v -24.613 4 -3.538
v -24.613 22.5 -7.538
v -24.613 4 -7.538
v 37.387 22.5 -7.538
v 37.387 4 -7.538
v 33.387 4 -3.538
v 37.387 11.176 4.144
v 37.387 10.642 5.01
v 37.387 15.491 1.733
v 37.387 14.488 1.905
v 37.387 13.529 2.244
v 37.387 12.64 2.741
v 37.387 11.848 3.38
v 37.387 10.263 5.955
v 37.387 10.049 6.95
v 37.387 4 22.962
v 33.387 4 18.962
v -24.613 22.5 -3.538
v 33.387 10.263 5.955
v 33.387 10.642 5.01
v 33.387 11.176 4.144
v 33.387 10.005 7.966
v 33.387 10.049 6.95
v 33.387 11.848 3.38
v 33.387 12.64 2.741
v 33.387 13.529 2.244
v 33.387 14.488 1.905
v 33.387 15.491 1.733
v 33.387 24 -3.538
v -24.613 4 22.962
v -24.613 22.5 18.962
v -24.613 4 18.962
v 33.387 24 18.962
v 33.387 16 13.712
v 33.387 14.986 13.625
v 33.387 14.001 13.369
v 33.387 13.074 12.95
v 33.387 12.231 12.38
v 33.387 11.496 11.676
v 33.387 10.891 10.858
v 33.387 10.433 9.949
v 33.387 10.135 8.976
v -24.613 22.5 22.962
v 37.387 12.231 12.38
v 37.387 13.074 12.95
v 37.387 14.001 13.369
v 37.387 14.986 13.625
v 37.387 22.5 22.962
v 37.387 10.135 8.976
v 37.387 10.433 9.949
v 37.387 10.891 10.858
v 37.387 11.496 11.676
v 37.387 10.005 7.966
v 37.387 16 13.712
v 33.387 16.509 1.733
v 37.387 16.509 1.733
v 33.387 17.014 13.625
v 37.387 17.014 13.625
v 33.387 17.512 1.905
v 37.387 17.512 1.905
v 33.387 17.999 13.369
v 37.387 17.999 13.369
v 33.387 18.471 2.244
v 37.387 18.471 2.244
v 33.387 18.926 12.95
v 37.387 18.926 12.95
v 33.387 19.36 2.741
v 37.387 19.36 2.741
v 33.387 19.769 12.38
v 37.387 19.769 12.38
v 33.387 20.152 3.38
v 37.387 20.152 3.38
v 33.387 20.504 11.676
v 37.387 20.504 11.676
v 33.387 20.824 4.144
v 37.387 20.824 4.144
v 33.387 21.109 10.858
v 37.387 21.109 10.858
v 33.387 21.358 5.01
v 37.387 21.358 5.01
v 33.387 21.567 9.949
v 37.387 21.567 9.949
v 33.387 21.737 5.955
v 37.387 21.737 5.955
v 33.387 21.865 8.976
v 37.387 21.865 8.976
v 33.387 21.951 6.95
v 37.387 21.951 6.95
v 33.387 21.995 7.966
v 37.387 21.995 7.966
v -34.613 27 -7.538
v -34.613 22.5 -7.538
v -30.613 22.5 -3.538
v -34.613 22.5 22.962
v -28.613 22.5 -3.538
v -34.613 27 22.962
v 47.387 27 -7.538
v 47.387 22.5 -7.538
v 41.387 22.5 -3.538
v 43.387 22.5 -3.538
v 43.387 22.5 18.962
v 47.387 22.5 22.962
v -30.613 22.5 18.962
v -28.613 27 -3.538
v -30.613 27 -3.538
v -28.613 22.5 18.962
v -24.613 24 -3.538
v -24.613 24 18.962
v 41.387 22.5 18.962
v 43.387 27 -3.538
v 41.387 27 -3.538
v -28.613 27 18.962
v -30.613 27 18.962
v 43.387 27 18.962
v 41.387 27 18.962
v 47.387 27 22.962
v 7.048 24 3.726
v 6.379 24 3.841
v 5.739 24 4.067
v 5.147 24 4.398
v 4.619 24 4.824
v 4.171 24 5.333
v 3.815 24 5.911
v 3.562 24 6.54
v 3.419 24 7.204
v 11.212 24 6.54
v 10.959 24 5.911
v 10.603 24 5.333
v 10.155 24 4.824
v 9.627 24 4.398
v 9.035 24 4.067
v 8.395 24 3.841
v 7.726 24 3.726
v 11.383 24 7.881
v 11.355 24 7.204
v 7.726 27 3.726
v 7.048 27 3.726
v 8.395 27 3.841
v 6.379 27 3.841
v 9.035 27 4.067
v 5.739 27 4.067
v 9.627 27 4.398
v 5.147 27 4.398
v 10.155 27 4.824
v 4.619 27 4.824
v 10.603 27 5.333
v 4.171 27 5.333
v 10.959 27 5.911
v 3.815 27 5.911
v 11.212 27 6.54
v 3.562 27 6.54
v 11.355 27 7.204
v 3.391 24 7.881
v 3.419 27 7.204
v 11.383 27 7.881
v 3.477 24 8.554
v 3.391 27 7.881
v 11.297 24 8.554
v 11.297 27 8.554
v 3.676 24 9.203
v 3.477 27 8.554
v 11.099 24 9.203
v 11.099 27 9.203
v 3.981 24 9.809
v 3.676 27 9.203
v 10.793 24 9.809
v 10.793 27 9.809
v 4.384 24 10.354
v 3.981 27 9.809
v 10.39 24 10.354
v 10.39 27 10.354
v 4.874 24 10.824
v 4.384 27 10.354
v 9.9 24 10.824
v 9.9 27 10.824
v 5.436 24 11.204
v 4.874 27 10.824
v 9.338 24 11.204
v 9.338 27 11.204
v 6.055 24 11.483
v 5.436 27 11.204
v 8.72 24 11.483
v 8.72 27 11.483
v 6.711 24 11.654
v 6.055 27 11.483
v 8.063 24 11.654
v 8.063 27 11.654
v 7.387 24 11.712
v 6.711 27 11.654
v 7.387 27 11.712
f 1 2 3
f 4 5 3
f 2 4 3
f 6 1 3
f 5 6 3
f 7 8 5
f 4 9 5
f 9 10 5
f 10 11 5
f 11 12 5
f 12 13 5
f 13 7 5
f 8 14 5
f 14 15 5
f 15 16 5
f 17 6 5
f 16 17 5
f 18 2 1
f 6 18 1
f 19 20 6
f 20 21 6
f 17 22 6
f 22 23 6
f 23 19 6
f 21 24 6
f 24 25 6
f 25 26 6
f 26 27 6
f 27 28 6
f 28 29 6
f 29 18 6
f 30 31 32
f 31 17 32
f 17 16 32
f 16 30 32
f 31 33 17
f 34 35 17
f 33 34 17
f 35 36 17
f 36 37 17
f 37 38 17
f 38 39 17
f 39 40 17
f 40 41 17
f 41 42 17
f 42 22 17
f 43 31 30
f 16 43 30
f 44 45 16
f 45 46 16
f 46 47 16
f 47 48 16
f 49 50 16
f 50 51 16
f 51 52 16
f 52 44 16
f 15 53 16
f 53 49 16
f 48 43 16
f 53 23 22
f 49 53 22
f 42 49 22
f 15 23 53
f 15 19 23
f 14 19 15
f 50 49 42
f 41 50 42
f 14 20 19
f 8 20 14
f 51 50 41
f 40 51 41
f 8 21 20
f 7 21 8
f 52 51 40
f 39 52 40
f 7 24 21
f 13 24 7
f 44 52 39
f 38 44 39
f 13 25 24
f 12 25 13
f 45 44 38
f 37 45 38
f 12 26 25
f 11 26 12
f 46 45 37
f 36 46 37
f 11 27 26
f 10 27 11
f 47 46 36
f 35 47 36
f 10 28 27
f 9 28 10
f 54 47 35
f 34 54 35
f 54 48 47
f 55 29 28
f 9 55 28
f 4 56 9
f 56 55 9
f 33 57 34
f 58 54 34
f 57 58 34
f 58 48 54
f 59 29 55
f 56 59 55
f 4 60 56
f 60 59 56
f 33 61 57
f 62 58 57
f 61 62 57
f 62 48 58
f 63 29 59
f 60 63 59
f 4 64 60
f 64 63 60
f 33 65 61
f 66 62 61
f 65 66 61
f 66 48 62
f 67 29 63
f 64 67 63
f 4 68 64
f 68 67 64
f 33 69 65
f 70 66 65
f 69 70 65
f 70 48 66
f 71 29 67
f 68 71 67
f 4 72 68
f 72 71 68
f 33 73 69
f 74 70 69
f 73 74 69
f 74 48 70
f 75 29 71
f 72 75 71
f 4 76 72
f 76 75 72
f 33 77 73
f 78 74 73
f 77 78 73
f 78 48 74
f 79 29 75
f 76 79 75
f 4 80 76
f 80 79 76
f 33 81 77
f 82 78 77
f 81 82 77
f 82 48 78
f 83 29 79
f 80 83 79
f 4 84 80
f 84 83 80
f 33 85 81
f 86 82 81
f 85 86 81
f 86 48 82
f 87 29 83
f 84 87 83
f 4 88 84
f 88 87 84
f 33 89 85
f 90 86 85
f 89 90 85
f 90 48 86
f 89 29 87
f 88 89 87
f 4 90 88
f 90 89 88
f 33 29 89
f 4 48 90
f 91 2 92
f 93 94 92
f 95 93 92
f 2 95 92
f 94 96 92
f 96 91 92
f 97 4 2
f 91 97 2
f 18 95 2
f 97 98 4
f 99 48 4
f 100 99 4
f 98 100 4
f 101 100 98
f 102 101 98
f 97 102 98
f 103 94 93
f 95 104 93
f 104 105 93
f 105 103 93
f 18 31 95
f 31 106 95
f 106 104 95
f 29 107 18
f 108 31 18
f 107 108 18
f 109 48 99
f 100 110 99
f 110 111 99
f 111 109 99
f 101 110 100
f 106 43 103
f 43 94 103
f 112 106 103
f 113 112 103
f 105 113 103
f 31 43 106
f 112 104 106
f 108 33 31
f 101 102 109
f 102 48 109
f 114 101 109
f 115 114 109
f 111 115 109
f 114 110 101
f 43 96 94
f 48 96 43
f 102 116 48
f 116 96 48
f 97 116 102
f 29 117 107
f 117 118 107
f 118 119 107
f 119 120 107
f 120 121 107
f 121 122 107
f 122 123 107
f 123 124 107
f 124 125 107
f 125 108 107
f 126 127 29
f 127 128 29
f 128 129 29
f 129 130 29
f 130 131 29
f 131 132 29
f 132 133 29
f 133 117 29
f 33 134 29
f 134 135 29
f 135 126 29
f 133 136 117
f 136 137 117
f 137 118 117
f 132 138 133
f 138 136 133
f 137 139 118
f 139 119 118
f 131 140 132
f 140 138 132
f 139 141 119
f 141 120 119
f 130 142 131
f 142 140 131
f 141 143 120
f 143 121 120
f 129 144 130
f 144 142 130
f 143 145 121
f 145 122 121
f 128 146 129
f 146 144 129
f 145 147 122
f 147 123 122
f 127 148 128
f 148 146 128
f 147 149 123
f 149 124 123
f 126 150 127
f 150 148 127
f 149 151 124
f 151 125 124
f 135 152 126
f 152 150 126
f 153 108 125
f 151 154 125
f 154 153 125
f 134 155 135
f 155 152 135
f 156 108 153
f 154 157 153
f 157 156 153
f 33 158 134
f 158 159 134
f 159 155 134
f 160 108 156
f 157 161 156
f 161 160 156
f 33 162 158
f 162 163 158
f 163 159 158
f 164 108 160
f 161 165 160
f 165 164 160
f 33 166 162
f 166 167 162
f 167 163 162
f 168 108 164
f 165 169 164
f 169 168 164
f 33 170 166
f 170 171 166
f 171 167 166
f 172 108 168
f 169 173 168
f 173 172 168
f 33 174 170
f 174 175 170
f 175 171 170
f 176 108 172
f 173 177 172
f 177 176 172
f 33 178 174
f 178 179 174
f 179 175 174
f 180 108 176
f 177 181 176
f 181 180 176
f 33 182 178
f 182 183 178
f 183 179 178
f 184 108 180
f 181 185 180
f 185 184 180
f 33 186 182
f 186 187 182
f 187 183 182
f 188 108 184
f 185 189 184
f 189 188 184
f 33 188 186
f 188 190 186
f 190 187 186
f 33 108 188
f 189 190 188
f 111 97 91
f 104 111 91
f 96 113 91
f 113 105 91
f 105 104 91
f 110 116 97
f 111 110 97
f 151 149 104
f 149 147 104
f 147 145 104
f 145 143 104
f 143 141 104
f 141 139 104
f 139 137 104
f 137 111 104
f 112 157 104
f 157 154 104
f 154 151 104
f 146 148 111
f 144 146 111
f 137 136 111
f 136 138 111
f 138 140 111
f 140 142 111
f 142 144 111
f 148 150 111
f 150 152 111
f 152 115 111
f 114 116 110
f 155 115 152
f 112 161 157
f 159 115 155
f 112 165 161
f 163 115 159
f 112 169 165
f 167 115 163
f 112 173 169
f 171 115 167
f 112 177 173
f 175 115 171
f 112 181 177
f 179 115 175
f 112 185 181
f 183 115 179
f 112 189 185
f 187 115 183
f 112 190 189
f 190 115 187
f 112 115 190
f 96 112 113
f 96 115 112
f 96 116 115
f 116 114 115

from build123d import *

# Parameters (mm, degrees)
SKETCH_1_W          = 66
SKETCH_1_H          = 30.5
SKETCH_1_W_2        = 58
SKETCH_1_H_2        = 22.5
EXTRUDE_1_DEPTH     = 27
SKETCH_2_W          = 66
SKETCH_2_H          = 30.5
EXTRUDE_2_DEPTH     = 3
SKETCH_3_R          = 4
CUT_EXTRUDE_1_DEPTH = 52.517321124
SKETCH_4_R          = 6
CUT_EXTRUDE_2_DEPTH = 11
SKETCH_5_W          = 4
SKETCH_5_H          = 30.5
CUT_EXTRUDE_3_DEPTH = 52.517321124
SKETCH_6_W          = 30.5
SKETCH_6_H          = 4.5
EXTRUDE_3_DEPTH     = 10
SKETCH_7_W          = 2
SKETCH_7_H          = 22.5
CUT_EXTRUDE_4_DEPTH = 10
SKETCH_8_W          = 30.5
SKETCH_8_H          = 4.5
EXTRUDE_4_DEPTH     = 10
SKETCH_9_W          = 2
SKETCH_9_H          = 22.5
CUT_EXTRUDE_5_DEPTH = 10
SKETCH_10_W         = 62
SKETCH_10_H         = 30.5
CUT_EXTRUDE_6_DEPTH = 4


with BuildPart() as part:
    # 草图1 → 凸台-拉伸1 (new body)
    with BuildSketch(Plane(origin=(0, 0, 0), x_dir=(1, 0, 0), z_dir=(0, 1, 0))):
        with Locations((4.387096774, -7.711693548)):
            Rectangle(SKETCH_1_W, SKETCH_1_H)
        with Locations((4.387096774, -7.711693548)):
            Rectangle(SKETCH_1_W_2, SKETCH_1_H_2, mode=Mode.SUBTRACT)
    extrude(amount=EXTRUDE_1_DEPTH)

    # 草图2 → 凸台-拉伸2 (add)
    with BuildSketch(Plane(origin=(0, 27, 0), x_dir=(1, 0, 0), z_dir=(0, 1, 0))):
        with Locations((4.387096774, -7.711693548)):
            Rectangle(SKETCH_2_W, SKETCH_2_H)
    extrude(amount=-EXTRUDE_2_DEPTH)

    # 草图3 → 切除-拉伸1 (cut, through all)
    with BuildSketch(Plane(origin=(0, 27, 0), x_dir=(1, 0, 0), z_dir=(0, 1, 0))):
        with Locations(Location((7.387096774, -7.711693548, 0), (0, 0, 270))):
            Circle(SKETCH_3_R)
    extrude(amount=-CUT_EXTRUDE_1_DEPTH, mode=Mode.SUBTRACT)

    # 草图4 → 切除-拉伸2 (cut)
    with BuildSketch(Plane.ZY.offset(-33.387096774)):
        with Locations((7.711693548, 16)):
            Circle(SKETCH_4_R)
    extrude(amount=-CUT_EXTRUDE_2_DEPTH, mode=Mode.SUBTRACT)

    # 草图5 → 切除-拉伸3 (cut, through all)
    with BuildSketch(Plane.XZ):
        with Locations((-26.612903226, 7.711693548)):
            Rectangle(SKETCH_5_W, SKETCH_5_H)
    extrude(amount=-CUT_EXTRUDE_3_DEPTH, mode=Mode.SUBTRACT)

    # 草图6 → 凸台-拉伸3 (add)
    with BuildSketch(Plane(origin=(37.387096774, 0, 0), x_dir=(0, 0, -1), z_dir=(1, 0, 0))):
        with Locations((-7.711693548, 24.75)):
            Rectangle(SKETCH_6_W, SKETCH_6_H)
    extrude(amount=EXTRUDE_3_DEPTH)

    # 草图7 → 切除-拉伸4 (cut)
    with BuildSketch(Plane.XZ.offset(-22.5)):
        with Locations((42.387096774, 7.711693548)):
            Rectangle(SKETCH_7_W, SKETCH_7_H)
    extrude(amount=-CUT_EXTRUDE_4_DEPTH, mode=Mode.SUBTRACT)

    # 草图8 → 凸台-拉伸4 (add)
    with BuildSketch(Plane.ZY.offset(24.612903226)):
        with Locations((7.711693548, 24.75)):
            Rectangle(SKETCH_8_W, SKETCH_8_H)
    extrude(amount=EXTRUDE_4_DEPTH)

    # 草图9 → 切除-拉伸5 (cut)
    with BuildSketch(Plane.XZ.offset(-22.5)):
        with Locations((-29.612903226, 7.711693548)):
            Rectangle(SKETCH_9_W, SKETCH_9_H)
    extrude(amount=-CUT_EXTRUDE_5_DEPTH, mode=Mode.SUBTRACT)

    # 草图10 → 切除-拉伸6 (cut)
    with BuildSketch(Plane.XZ):
        with Locations((6.387096774, 7.711693548)):
            Rectangle(SKETCH_10_W, SKETCH_10_H)
    extrude(amount=-CUT_EXTRUDE_6_DEPTH, mode=Mode.SUBTRACT)


solid = part.part
